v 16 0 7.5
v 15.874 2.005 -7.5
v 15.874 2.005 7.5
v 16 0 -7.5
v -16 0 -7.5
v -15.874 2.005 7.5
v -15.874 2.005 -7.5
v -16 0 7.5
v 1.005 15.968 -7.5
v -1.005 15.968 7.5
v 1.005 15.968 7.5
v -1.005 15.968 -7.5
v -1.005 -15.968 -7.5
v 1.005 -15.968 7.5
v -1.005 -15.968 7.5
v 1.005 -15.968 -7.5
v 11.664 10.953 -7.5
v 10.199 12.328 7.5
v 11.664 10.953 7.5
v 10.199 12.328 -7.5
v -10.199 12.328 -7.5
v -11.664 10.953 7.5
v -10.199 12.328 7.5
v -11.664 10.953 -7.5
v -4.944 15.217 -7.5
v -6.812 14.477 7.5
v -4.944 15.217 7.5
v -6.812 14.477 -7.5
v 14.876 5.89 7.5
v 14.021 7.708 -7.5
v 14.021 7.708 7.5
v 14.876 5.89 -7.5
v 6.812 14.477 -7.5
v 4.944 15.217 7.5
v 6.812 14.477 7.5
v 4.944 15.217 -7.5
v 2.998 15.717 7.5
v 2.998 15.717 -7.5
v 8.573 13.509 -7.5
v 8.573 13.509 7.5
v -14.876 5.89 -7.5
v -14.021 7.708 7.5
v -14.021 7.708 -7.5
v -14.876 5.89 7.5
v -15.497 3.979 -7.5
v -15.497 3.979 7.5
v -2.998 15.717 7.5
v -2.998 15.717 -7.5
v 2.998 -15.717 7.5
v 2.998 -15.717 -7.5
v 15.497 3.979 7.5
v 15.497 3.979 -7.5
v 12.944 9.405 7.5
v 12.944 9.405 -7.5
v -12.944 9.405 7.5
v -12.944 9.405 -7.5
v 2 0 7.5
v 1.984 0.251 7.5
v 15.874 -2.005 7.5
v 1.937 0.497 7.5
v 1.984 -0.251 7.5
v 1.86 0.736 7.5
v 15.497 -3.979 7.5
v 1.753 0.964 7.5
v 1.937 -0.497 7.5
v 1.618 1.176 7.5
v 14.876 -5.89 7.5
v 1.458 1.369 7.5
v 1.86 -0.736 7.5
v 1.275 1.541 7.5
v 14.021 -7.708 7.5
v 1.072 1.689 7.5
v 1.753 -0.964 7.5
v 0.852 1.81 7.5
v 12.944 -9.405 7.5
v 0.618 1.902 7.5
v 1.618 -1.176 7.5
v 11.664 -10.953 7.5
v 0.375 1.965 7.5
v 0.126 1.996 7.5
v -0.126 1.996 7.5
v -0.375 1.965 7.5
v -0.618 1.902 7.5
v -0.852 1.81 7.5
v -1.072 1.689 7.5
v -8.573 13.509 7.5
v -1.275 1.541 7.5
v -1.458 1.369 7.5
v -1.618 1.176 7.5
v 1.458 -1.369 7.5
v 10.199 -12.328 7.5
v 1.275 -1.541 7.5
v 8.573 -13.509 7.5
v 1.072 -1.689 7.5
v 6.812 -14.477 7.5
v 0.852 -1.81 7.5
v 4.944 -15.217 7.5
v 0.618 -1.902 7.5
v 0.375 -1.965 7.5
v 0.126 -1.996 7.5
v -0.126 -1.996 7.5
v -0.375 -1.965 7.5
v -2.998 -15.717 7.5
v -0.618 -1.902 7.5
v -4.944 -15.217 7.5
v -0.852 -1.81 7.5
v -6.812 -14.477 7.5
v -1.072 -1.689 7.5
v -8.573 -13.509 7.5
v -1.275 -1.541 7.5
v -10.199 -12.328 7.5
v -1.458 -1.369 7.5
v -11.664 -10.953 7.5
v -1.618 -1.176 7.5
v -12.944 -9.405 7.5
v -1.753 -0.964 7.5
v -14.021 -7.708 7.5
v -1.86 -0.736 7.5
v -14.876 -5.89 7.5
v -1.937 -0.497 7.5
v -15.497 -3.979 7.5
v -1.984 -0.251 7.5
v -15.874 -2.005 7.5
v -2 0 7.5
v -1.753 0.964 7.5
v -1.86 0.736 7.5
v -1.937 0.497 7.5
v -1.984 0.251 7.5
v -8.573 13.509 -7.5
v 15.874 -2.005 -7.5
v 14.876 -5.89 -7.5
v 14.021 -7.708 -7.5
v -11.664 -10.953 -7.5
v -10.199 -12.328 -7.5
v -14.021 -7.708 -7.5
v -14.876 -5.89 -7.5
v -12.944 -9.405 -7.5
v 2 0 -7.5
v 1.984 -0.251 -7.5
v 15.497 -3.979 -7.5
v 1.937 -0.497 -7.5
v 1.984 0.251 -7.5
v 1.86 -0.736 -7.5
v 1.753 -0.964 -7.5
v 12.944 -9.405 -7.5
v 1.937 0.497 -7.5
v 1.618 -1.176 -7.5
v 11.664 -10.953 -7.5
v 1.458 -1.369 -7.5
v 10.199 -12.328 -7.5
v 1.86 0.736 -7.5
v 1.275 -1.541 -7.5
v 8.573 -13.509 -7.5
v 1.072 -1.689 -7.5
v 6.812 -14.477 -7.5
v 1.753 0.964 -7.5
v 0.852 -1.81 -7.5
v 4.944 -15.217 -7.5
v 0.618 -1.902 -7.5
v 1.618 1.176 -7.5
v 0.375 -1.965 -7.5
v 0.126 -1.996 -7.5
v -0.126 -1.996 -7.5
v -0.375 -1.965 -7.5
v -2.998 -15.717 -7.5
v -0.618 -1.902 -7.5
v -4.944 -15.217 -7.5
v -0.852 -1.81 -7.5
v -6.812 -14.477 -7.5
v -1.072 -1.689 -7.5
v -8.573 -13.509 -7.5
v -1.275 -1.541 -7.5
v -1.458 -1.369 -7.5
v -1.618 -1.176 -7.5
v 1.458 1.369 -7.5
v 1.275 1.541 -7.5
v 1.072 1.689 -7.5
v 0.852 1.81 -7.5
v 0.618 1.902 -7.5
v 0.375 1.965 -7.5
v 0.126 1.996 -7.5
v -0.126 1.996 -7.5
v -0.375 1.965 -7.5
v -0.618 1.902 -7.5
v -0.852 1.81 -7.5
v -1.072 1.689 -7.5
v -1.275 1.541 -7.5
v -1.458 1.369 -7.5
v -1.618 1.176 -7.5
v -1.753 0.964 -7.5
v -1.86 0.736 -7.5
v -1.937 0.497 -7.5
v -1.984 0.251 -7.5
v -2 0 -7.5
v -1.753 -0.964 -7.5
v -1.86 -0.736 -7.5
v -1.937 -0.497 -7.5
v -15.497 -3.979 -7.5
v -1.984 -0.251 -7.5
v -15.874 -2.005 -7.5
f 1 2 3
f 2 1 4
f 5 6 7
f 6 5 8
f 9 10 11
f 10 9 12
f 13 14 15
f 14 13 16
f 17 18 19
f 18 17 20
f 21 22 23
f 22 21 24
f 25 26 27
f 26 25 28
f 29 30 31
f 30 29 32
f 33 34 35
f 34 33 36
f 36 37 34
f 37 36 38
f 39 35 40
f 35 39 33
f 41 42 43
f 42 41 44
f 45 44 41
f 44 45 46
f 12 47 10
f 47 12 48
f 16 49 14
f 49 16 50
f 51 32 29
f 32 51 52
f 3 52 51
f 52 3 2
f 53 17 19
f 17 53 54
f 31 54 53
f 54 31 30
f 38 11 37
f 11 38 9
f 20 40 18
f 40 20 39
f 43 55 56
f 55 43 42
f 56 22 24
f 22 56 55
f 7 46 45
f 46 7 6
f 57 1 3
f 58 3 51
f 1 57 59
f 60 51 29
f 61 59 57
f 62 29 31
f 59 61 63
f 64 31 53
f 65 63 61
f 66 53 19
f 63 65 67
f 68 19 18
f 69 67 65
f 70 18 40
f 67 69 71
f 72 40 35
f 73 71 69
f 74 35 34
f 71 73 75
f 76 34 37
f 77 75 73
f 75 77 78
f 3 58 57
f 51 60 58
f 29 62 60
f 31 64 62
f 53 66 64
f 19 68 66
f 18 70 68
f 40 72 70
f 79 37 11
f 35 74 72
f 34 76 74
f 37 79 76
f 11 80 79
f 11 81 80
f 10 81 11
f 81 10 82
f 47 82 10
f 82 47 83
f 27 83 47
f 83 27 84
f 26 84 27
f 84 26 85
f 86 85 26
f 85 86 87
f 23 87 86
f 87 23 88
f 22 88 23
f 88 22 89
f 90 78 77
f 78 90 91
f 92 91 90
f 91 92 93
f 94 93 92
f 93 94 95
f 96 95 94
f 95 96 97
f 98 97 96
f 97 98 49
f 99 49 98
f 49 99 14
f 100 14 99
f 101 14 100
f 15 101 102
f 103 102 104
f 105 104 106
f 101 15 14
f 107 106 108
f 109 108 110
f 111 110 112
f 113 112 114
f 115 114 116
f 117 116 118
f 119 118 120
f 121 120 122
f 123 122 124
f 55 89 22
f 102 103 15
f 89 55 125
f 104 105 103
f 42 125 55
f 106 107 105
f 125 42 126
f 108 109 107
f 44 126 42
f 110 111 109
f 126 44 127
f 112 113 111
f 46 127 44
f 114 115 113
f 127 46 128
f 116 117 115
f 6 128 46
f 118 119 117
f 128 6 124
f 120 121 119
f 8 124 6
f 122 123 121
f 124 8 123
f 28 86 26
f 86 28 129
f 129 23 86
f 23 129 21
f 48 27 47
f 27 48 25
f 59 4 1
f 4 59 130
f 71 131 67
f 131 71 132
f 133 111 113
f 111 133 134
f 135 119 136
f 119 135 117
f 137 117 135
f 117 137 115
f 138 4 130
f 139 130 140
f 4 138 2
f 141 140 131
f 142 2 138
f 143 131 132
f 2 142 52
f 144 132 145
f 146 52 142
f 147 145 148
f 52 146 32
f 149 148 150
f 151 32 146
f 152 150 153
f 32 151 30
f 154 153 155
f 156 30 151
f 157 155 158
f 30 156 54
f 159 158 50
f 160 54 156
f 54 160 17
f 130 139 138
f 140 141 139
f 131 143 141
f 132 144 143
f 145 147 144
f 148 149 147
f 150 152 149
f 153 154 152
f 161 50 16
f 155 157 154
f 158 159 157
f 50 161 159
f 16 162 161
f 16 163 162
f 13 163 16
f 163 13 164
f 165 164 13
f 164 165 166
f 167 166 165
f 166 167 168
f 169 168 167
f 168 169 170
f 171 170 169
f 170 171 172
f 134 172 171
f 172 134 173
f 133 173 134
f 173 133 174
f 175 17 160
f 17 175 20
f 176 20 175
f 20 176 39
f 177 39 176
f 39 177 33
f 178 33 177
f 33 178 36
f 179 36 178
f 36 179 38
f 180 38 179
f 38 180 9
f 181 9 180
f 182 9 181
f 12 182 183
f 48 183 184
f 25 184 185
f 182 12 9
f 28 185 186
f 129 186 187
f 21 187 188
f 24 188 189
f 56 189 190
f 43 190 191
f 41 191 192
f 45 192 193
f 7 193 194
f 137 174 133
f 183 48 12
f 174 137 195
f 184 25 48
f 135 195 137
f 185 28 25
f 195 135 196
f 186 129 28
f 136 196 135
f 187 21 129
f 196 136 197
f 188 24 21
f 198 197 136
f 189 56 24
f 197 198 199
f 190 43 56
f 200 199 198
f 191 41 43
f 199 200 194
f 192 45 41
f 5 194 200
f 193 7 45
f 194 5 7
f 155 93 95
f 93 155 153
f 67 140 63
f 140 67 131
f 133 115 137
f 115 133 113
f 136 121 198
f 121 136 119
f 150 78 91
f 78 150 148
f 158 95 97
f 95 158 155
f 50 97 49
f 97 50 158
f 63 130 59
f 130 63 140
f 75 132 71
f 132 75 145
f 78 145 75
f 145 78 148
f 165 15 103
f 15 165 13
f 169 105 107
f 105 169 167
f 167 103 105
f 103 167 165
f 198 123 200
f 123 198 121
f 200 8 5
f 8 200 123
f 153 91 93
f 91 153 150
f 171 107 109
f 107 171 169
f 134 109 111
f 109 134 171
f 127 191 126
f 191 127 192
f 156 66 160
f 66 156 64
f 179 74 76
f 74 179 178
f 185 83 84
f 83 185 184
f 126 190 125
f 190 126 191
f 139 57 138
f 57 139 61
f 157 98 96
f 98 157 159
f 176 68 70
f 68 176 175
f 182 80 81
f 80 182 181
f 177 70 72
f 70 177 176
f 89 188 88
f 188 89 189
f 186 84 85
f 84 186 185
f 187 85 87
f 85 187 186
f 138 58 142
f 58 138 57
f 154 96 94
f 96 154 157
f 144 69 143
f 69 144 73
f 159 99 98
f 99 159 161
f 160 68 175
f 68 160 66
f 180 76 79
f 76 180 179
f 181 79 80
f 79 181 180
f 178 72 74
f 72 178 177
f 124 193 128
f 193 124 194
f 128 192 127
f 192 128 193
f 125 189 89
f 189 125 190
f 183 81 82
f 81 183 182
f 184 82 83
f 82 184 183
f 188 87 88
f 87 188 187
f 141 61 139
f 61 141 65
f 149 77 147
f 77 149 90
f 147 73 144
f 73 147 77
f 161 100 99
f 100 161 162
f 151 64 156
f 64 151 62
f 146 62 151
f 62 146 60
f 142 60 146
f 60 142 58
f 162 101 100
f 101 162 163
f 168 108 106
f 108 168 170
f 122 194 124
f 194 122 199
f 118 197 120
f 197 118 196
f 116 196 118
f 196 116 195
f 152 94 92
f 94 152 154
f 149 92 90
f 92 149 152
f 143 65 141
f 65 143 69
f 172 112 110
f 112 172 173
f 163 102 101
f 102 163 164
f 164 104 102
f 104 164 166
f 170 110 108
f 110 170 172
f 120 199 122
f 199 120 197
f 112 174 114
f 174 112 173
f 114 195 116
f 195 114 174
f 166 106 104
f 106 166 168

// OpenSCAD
$fn = 50;


difference() {
	union() {
		translate(v = [0, 0, -7.5000000000]) {
			cylinder(h = 15, r = 16.0000000000);
		}
	}
	union() {
		translate(v = [0, 0, -100.0000000000]) {
			cylinder(h = 200, r = 2);
		}
	}
}
